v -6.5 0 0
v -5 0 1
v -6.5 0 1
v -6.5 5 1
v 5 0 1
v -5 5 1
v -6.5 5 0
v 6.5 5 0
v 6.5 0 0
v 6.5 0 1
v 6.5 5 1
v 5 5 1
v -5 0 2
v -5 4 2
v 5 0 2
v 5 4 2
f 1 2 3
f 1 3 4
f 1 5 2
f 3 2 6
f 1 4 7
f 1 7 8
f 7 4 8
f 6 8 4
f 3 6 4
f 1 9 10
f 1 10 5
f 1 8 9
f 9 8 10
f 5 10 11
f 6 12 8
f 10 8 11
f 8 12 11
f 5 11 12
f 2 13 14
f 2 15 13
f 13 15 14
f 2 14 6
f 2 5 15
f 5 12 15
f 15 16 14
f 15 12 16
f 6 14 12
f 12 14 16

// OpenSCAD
//
// Parametric Unlocking Pin Spacer for Chinese Battery Tools
// Version 0.04
//

// -- Global Parameters --
// You can adjust these values to customize the spacer.

// Total length of the spacer along the Y-axis.
spacer_length = 5; // [mm]

// Width of the bottom part of the spacer along the X-axis.
bottom_width = 13; // [mm]

// Thickness (height) of the bottom part along the Z-axis.
bottom_thickness = 1; // [mm]

// Width of the top part of the spacer along the X-axis.
top_width = 10; // [mm]

// Thickness (height) of the top part along the Z-axis.
top_thickness = 1; // [mm]

// The size of the chamfer cut. For a 45-degree chamfer,
// the horizontal and vertical extent of the cut are equal.
// We set it to the top_thickness to create a full 45-degree chamfer.
chamfer_size = top_thickness; // [mm]


// -- Model Definition --

// The main module for creating the spacer.
// It combines a bottom and top part, then subtracts a chamfer.
module unlocking_pin_spacer() {
    // The difference() function is used to subtract the chamfer cutter
    // from the main body of the spacer.
    difference() {
        // The main body is created by uniting the bottom and top parts.
        union() {
            // 1. Bottom Part
            // A simple cube for the base.
            // It is translated to be centered along the X-axis for symmetry.
            translate([-bottom_width / 2, 0, 0]) {
                cube([bottom_width, spacer_length, bottom_thickness]);
            }

            // 2. Top Part
            // Another cube that sits on top of the bottom part.
            // It is also centered along the X-axis.
            translate([-top_width / 2, 0, bottom_thickness]) {
                cube([top_width, spacer_length, top_thickness]);
            }
        }

        // 3. Chamfer Cutter
        // A large cube rotated by 45 degrees creates a completely clean chamfer.
        // To prevent any "skin" or rendering artifacts from co-planar faces,
        // the origin of the cutter is shifted down and away from the part along
        // the cutting plane. This ensures the cut starts completely outside the
        // part and slices infinitely through the corner.
        cutter_width = bottom_width + 10;
        translate([-cutter_width / 2, spacer_length + chamfer_size, bottom_thickness - chamfer_size]) {
            rotate([45, 0, 0]) {
                // A sufficiently large cube to slice off the entire corner
                cube([cutter_width, 10, 10]);
            }
        }
    }
}


// -- Render the Model --
// Call the module to generate the final geometry.
unlocking_pin_spacer();
